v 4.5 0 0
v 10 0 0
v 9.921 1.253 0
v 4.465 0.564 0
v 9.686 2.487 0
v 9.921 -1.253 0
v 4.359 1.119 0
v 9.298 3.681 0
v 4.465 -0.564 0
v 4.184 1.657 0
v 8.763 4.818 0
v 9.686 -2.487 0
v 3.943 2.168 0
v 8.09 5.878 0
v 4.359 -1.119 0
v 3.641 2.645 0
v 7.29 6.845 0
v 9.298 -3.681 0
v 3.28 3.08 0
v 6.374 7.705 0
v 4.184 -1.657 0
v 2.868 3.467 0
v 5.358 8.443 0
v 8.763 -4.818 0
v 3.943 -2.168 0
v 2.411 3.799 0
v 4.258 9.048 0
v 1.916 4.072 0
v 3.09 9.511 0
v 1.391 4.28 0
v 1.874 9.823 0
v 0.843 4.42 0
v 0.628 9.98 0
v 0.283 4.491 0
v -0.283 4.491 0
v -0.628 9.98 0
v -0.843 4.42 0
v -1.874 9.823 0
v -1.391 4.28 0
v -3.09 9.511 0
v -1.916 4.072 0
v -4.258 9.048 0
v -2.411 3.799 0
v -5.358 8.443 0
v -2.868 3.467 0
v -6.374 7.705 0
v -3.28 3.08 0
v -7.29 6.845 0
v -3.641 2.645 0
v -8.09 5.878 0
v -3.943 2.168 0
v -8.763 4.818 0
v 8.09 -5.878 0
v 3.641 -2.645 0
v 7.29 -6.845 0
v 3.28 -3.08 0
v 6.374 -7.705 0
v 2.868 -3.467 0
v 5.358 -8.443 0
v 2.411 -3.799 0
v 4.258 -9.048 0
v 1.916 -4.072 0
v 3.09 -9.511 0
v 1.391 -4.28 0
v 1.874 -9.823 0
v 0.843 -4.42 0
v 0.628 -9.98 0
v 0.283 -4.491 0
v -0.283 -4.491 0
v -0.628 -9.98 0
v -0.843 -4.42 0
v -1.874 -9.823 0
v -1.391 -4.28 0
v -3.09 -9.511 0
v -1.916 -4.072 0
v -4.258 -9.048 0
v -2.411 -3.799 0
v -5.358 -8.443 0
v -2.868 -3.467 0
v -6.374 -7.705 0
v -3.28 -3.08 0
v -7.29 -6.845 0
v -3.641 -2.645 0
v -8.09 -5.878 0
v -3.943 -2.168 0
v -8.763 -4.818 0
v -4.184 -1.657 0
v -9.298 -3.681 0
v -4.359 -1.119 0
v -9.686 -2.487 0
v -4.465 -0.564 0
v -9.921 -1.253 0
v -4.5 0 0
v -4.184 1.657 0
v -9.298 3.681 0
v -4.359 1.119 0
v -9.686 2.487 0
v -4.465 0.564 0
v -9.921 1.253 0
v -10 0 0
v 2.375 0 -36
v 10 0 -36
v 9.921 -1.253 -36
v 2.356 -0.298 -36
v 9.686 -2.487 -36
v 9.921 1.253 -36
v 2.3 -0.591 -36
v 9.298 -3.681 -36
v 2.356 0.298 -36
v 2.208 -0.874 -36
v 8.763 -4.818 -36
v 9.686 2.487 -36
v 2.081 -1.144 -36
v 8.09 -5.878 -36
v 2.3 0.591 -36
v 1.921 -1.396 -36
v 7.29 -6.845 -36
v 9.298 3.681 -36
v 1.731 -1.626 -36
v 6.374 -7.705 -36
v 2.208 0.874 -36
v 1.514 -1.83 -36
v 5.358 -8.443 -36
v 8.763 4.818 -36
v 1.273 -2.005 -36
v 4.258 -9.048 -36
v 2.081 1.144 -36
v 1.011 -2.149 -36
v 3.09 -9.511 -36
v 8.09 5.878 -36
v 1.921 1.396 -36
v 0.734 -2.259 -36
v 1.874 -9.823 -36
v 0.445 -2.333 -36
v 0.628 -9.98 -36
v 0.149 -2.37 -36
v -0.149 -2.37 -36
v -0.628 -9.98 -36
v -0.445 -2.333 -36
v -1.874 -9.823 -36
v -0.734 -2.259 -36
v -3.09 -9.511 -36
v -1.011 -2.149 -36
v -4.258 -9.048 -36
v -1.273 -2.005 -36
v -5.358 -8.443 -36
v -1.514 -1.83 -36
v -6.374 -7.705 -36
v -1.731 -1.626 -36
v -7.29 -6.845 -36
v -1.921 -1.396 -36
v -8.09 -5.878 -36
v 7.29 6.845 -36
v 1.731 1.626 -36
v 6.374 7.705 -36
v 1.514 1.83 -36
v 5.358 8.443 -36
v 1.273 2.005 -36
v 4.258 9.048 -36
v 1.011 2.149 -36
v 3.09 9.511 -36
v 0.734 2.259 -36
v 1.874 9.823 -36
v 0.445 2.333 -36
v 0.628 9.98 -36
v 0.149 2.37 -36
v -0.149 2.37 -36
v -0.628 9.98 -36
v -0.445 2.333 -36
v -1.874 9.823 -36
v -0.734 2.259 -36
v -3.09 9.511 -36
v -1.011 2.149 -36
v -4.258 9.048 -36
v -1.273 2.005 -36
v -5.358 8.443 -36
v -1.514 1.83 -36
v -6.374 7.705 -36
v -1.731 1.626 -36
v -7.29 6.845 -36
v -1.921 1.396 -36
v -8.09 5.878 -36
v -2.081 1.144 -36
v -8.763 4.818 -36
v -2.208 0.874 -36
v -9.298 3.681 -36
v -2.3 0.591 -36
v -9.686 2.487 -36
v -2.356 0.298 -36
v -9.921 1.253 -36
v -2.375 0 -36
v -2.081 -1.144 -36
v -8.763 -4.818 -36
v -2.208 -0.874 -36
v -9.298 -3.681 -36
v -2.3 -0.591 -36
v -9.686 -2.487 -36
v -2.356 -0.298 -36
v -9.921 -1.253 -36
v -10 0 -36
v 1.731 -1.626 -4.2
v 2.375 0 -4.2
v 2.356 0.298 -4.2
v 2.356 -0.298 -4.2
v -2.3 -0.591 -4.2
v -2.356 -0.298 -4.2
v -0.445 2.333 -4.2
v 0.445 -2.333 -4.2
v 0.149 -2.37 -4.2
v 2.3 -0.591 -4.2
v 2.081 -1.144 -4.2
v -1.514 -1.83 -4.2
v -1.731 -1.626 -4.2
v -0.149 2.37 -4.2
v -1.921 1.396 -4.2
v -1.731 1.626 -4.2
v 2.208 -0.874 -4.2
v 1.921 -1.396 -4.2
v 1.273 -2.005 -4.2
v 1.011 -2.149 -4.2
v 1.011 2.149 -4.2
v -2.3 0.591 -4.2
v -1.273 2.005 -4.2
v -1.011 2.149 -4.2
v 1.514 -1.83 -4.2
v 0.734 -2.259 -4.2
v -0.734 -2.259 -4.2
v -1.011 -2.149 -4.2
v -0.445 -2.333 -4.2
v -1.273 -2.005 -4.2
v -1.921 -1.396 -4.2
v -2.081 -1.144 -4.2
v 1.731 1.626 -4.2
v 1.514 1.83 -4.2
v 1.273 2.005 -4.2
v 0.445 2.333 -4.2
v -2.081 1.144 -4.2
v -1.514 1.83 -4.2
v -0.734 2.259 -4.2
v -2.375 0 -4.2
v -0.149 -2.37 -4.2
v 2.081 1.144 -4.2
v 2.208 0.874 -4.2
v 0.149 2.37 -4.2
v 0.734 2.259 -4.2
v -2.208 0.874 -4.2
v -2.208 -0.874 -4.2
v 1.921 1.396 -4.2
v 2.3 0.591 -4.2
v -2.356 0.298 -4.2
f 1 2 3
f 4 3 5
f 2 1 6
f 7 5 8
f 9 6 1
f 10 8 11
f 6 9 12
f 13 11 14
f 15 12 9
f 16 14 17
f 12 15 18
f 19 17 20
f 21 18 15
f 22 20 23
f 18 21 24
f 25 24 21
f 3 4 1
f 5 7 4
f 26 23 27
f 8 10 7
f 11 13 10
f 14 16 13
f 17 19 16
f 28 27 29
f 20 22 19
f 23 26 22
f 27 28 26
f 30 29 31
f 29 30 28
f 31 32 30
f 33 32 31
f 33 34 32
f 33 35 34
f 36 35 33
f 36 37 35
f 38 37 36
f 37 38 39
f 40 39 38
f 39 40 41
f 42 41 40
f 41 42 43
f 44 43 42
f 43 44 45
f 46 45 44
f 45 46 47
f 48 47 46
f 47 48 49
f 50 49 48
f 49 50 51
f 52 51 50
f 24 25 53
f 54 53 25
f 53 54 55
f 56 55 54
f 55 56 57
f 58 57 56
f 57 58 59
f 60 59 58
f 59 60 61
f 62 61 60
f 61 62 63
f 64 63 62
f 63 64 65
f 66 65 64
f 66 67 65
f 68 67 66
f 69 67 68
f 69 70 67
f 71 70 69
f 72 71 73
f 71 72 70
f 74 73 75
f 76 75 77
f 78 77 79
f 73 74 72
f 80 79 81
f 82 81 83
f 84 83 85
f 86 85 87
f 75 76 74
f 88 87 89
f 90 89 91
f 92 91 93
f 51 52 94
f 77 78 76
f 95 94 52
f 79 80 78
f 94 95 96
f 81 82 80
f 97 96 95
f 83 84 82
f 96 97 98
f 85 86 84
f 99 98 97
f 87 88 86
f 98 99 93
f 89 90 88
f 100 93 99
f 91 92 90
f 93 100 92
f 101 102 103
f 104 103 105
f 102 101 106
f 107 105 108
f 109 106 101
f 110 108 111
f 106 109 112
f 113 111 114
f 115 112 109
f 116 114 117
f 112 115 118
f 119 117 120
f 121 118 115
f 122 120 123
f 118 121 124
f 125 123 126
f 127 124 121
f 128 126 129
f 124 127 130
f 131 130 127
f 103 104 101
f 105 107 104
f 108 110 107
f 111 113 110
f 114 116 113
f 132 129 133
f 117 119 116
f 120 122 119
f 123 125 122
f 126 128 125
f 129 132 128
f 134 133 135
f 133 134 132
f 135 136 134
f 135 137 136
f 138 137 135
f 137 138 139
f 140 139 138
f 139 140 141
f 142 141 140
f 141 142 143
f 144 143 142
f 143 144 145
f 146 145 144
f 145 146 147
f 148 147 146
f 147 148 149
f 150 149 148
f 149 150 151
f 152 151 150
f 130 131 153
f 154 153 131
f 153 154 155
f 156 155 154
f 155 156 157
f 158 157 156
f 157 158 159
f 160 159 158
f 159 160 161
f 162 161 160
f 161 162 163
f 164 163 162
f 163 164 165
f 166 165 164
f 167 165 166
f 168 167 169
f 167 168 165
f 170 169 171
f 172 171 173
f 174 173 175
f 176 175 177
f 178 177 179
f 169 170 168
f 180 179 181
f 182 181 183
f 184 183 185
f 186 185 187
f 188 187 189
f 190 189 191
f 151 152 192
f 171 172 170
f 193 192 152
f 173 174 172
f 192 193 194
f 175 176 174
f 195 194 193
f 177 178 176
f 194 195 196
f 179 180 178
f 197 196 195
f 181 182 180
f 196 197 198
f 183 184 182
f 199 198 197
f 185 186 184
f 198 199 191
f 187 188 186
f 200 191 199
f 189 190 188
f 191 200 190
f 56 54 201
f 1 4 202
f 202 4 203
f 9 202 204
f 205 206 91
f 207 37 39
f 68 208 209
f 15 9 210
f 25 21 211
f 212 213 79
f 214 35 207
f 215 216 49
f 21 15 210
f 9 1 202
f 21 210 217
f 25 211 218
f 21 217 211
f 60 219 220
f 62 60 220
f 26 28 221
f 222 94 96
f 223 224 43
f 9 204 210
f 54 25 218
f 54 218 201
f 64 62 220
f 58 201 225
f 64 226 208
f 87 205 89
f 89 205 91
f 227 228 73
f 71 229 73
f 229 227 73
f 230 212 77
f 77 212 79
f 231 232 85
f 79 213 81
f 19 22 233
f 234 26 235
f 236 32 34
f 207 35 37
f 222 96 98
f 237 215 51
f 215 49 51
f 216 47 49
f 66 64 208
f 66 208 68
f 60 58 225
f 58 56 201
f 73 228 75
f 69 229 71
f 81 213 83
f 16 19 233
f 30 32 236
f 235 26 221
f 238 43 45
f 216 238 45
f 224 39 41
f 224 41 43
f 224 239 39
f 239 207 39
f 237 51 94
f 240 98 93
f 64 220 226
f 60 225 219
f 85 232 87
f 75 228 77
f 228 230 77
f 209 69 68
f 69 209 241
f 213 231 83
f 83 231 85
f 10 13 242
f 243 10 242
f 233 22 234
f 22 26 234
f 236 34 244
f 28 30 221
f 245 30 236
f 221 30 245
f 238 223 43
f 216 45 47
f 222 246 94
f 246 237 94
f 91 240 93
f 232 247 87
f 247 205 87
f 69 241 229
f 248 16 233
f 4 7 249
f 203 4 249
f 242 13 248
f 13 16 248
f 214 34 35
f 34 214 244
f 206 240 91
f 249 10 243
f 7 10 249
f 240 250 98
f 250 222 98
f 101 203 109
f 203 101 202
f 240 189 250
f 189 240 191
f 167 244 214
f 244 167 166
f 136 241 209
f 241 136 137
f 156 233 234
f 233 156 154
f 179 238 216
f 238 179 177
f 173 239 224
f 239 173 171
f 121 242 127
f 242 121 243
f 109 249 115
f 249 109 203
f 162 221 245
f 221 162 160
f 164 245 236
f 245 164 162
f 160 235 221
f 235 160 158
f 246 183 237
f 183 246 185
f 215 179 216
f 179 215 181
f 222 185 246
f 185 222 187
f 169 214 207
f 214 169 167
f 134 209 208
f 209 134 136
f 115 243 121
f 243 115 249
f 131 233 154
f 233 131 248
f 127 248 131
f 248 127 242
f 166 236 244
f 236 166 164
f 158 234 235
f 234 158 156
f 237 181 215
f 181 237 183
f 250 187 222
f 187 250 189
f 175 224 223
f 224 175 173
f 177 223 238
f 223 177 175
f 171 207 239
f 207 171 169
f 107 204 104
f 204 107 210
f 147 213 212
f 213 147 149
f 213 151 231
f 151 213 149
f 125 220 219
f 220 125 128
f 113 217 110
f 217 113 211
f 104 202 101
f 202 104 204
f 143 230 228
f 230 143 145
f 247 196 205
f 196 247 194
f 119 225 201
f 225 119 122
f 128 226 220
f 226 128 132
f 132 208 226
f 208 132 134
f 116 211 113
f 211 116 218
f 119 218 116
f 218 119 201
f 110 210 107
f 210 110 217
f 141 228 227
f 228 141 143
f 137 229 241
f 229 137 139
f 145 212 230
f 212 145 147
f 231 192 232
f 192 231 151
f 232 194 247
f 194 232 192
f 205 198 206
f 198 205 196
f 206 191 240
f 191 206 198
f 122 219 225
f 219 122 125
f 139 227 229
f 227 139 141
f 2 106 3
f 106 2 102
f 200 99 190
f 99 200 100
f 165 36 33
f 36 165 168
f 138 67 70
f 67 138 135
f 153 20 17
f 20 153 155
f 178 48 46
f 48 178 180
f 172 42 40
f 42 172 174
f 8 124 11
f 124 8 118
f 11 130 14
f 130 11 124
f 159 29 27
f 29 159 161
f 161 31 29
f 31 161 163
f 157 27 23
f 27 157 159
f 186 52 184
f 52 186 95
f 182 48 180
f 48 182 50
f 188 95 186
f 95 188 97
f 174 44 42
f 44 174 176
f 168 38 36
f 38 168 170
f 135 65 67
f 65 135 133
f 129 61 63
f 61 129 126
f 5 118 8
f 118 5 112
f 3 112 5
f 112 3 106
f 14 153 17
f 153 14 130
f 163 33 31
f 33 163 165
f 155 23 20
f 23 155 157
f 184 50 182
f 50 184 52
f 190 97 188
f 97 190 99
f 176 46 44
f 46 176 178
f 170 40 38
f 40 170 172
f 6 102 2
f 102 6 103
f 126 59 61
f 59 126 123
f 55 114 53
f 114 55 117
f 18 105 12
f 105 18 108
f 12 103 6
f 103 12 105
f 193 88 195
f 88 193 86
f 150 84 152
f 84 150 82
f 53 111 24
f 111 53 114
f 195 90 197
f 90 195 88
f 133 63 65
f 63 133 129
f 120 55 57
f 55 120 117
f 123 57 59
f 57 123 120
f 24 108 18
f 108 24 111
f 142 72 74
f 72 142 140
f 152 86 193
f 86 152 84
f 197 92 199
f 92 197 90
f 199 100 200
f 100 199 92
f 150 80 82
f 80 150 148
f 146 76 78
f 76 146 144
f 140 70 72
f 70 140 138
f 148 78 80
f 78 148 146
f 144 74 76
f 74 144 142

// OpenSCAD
$fn = 50;


difference() {
	union() {
		translate(v = [0, 0, -36.0000000000]) {
			cylinder(h = 36, r = 10.0000000000);
		}
		cylinder(h = 0, r = 13.0000000000);
	}
	union() {
		translate(v = [0, 0, 0]) {
			rotate(a = [0, 0, 0]) {
				difference() {
					union() {
						#translate(v = [0, 0, -36.0000000000]) {
							cylinder(h = 36, r = 2.2500000000);
						}
						#translate(v = [0, 0, -4.2000000000]) {
							cylinder(h = 4.2000000000, r = 10.0000000000, r1 = 2.3750000000, r2 = 4.5000000000);
						}
						#translate(v = [0, 0, -36.0000000000]) {
							cylinder(h = 36, r = 2.3750000000);
						}
						#translate(v = [0, 0, -36.0000000000]) {
							cylinder(h = 36, r = 2.2500000000);
						}
					}
					union();
				}
			}
		}
	}
}
